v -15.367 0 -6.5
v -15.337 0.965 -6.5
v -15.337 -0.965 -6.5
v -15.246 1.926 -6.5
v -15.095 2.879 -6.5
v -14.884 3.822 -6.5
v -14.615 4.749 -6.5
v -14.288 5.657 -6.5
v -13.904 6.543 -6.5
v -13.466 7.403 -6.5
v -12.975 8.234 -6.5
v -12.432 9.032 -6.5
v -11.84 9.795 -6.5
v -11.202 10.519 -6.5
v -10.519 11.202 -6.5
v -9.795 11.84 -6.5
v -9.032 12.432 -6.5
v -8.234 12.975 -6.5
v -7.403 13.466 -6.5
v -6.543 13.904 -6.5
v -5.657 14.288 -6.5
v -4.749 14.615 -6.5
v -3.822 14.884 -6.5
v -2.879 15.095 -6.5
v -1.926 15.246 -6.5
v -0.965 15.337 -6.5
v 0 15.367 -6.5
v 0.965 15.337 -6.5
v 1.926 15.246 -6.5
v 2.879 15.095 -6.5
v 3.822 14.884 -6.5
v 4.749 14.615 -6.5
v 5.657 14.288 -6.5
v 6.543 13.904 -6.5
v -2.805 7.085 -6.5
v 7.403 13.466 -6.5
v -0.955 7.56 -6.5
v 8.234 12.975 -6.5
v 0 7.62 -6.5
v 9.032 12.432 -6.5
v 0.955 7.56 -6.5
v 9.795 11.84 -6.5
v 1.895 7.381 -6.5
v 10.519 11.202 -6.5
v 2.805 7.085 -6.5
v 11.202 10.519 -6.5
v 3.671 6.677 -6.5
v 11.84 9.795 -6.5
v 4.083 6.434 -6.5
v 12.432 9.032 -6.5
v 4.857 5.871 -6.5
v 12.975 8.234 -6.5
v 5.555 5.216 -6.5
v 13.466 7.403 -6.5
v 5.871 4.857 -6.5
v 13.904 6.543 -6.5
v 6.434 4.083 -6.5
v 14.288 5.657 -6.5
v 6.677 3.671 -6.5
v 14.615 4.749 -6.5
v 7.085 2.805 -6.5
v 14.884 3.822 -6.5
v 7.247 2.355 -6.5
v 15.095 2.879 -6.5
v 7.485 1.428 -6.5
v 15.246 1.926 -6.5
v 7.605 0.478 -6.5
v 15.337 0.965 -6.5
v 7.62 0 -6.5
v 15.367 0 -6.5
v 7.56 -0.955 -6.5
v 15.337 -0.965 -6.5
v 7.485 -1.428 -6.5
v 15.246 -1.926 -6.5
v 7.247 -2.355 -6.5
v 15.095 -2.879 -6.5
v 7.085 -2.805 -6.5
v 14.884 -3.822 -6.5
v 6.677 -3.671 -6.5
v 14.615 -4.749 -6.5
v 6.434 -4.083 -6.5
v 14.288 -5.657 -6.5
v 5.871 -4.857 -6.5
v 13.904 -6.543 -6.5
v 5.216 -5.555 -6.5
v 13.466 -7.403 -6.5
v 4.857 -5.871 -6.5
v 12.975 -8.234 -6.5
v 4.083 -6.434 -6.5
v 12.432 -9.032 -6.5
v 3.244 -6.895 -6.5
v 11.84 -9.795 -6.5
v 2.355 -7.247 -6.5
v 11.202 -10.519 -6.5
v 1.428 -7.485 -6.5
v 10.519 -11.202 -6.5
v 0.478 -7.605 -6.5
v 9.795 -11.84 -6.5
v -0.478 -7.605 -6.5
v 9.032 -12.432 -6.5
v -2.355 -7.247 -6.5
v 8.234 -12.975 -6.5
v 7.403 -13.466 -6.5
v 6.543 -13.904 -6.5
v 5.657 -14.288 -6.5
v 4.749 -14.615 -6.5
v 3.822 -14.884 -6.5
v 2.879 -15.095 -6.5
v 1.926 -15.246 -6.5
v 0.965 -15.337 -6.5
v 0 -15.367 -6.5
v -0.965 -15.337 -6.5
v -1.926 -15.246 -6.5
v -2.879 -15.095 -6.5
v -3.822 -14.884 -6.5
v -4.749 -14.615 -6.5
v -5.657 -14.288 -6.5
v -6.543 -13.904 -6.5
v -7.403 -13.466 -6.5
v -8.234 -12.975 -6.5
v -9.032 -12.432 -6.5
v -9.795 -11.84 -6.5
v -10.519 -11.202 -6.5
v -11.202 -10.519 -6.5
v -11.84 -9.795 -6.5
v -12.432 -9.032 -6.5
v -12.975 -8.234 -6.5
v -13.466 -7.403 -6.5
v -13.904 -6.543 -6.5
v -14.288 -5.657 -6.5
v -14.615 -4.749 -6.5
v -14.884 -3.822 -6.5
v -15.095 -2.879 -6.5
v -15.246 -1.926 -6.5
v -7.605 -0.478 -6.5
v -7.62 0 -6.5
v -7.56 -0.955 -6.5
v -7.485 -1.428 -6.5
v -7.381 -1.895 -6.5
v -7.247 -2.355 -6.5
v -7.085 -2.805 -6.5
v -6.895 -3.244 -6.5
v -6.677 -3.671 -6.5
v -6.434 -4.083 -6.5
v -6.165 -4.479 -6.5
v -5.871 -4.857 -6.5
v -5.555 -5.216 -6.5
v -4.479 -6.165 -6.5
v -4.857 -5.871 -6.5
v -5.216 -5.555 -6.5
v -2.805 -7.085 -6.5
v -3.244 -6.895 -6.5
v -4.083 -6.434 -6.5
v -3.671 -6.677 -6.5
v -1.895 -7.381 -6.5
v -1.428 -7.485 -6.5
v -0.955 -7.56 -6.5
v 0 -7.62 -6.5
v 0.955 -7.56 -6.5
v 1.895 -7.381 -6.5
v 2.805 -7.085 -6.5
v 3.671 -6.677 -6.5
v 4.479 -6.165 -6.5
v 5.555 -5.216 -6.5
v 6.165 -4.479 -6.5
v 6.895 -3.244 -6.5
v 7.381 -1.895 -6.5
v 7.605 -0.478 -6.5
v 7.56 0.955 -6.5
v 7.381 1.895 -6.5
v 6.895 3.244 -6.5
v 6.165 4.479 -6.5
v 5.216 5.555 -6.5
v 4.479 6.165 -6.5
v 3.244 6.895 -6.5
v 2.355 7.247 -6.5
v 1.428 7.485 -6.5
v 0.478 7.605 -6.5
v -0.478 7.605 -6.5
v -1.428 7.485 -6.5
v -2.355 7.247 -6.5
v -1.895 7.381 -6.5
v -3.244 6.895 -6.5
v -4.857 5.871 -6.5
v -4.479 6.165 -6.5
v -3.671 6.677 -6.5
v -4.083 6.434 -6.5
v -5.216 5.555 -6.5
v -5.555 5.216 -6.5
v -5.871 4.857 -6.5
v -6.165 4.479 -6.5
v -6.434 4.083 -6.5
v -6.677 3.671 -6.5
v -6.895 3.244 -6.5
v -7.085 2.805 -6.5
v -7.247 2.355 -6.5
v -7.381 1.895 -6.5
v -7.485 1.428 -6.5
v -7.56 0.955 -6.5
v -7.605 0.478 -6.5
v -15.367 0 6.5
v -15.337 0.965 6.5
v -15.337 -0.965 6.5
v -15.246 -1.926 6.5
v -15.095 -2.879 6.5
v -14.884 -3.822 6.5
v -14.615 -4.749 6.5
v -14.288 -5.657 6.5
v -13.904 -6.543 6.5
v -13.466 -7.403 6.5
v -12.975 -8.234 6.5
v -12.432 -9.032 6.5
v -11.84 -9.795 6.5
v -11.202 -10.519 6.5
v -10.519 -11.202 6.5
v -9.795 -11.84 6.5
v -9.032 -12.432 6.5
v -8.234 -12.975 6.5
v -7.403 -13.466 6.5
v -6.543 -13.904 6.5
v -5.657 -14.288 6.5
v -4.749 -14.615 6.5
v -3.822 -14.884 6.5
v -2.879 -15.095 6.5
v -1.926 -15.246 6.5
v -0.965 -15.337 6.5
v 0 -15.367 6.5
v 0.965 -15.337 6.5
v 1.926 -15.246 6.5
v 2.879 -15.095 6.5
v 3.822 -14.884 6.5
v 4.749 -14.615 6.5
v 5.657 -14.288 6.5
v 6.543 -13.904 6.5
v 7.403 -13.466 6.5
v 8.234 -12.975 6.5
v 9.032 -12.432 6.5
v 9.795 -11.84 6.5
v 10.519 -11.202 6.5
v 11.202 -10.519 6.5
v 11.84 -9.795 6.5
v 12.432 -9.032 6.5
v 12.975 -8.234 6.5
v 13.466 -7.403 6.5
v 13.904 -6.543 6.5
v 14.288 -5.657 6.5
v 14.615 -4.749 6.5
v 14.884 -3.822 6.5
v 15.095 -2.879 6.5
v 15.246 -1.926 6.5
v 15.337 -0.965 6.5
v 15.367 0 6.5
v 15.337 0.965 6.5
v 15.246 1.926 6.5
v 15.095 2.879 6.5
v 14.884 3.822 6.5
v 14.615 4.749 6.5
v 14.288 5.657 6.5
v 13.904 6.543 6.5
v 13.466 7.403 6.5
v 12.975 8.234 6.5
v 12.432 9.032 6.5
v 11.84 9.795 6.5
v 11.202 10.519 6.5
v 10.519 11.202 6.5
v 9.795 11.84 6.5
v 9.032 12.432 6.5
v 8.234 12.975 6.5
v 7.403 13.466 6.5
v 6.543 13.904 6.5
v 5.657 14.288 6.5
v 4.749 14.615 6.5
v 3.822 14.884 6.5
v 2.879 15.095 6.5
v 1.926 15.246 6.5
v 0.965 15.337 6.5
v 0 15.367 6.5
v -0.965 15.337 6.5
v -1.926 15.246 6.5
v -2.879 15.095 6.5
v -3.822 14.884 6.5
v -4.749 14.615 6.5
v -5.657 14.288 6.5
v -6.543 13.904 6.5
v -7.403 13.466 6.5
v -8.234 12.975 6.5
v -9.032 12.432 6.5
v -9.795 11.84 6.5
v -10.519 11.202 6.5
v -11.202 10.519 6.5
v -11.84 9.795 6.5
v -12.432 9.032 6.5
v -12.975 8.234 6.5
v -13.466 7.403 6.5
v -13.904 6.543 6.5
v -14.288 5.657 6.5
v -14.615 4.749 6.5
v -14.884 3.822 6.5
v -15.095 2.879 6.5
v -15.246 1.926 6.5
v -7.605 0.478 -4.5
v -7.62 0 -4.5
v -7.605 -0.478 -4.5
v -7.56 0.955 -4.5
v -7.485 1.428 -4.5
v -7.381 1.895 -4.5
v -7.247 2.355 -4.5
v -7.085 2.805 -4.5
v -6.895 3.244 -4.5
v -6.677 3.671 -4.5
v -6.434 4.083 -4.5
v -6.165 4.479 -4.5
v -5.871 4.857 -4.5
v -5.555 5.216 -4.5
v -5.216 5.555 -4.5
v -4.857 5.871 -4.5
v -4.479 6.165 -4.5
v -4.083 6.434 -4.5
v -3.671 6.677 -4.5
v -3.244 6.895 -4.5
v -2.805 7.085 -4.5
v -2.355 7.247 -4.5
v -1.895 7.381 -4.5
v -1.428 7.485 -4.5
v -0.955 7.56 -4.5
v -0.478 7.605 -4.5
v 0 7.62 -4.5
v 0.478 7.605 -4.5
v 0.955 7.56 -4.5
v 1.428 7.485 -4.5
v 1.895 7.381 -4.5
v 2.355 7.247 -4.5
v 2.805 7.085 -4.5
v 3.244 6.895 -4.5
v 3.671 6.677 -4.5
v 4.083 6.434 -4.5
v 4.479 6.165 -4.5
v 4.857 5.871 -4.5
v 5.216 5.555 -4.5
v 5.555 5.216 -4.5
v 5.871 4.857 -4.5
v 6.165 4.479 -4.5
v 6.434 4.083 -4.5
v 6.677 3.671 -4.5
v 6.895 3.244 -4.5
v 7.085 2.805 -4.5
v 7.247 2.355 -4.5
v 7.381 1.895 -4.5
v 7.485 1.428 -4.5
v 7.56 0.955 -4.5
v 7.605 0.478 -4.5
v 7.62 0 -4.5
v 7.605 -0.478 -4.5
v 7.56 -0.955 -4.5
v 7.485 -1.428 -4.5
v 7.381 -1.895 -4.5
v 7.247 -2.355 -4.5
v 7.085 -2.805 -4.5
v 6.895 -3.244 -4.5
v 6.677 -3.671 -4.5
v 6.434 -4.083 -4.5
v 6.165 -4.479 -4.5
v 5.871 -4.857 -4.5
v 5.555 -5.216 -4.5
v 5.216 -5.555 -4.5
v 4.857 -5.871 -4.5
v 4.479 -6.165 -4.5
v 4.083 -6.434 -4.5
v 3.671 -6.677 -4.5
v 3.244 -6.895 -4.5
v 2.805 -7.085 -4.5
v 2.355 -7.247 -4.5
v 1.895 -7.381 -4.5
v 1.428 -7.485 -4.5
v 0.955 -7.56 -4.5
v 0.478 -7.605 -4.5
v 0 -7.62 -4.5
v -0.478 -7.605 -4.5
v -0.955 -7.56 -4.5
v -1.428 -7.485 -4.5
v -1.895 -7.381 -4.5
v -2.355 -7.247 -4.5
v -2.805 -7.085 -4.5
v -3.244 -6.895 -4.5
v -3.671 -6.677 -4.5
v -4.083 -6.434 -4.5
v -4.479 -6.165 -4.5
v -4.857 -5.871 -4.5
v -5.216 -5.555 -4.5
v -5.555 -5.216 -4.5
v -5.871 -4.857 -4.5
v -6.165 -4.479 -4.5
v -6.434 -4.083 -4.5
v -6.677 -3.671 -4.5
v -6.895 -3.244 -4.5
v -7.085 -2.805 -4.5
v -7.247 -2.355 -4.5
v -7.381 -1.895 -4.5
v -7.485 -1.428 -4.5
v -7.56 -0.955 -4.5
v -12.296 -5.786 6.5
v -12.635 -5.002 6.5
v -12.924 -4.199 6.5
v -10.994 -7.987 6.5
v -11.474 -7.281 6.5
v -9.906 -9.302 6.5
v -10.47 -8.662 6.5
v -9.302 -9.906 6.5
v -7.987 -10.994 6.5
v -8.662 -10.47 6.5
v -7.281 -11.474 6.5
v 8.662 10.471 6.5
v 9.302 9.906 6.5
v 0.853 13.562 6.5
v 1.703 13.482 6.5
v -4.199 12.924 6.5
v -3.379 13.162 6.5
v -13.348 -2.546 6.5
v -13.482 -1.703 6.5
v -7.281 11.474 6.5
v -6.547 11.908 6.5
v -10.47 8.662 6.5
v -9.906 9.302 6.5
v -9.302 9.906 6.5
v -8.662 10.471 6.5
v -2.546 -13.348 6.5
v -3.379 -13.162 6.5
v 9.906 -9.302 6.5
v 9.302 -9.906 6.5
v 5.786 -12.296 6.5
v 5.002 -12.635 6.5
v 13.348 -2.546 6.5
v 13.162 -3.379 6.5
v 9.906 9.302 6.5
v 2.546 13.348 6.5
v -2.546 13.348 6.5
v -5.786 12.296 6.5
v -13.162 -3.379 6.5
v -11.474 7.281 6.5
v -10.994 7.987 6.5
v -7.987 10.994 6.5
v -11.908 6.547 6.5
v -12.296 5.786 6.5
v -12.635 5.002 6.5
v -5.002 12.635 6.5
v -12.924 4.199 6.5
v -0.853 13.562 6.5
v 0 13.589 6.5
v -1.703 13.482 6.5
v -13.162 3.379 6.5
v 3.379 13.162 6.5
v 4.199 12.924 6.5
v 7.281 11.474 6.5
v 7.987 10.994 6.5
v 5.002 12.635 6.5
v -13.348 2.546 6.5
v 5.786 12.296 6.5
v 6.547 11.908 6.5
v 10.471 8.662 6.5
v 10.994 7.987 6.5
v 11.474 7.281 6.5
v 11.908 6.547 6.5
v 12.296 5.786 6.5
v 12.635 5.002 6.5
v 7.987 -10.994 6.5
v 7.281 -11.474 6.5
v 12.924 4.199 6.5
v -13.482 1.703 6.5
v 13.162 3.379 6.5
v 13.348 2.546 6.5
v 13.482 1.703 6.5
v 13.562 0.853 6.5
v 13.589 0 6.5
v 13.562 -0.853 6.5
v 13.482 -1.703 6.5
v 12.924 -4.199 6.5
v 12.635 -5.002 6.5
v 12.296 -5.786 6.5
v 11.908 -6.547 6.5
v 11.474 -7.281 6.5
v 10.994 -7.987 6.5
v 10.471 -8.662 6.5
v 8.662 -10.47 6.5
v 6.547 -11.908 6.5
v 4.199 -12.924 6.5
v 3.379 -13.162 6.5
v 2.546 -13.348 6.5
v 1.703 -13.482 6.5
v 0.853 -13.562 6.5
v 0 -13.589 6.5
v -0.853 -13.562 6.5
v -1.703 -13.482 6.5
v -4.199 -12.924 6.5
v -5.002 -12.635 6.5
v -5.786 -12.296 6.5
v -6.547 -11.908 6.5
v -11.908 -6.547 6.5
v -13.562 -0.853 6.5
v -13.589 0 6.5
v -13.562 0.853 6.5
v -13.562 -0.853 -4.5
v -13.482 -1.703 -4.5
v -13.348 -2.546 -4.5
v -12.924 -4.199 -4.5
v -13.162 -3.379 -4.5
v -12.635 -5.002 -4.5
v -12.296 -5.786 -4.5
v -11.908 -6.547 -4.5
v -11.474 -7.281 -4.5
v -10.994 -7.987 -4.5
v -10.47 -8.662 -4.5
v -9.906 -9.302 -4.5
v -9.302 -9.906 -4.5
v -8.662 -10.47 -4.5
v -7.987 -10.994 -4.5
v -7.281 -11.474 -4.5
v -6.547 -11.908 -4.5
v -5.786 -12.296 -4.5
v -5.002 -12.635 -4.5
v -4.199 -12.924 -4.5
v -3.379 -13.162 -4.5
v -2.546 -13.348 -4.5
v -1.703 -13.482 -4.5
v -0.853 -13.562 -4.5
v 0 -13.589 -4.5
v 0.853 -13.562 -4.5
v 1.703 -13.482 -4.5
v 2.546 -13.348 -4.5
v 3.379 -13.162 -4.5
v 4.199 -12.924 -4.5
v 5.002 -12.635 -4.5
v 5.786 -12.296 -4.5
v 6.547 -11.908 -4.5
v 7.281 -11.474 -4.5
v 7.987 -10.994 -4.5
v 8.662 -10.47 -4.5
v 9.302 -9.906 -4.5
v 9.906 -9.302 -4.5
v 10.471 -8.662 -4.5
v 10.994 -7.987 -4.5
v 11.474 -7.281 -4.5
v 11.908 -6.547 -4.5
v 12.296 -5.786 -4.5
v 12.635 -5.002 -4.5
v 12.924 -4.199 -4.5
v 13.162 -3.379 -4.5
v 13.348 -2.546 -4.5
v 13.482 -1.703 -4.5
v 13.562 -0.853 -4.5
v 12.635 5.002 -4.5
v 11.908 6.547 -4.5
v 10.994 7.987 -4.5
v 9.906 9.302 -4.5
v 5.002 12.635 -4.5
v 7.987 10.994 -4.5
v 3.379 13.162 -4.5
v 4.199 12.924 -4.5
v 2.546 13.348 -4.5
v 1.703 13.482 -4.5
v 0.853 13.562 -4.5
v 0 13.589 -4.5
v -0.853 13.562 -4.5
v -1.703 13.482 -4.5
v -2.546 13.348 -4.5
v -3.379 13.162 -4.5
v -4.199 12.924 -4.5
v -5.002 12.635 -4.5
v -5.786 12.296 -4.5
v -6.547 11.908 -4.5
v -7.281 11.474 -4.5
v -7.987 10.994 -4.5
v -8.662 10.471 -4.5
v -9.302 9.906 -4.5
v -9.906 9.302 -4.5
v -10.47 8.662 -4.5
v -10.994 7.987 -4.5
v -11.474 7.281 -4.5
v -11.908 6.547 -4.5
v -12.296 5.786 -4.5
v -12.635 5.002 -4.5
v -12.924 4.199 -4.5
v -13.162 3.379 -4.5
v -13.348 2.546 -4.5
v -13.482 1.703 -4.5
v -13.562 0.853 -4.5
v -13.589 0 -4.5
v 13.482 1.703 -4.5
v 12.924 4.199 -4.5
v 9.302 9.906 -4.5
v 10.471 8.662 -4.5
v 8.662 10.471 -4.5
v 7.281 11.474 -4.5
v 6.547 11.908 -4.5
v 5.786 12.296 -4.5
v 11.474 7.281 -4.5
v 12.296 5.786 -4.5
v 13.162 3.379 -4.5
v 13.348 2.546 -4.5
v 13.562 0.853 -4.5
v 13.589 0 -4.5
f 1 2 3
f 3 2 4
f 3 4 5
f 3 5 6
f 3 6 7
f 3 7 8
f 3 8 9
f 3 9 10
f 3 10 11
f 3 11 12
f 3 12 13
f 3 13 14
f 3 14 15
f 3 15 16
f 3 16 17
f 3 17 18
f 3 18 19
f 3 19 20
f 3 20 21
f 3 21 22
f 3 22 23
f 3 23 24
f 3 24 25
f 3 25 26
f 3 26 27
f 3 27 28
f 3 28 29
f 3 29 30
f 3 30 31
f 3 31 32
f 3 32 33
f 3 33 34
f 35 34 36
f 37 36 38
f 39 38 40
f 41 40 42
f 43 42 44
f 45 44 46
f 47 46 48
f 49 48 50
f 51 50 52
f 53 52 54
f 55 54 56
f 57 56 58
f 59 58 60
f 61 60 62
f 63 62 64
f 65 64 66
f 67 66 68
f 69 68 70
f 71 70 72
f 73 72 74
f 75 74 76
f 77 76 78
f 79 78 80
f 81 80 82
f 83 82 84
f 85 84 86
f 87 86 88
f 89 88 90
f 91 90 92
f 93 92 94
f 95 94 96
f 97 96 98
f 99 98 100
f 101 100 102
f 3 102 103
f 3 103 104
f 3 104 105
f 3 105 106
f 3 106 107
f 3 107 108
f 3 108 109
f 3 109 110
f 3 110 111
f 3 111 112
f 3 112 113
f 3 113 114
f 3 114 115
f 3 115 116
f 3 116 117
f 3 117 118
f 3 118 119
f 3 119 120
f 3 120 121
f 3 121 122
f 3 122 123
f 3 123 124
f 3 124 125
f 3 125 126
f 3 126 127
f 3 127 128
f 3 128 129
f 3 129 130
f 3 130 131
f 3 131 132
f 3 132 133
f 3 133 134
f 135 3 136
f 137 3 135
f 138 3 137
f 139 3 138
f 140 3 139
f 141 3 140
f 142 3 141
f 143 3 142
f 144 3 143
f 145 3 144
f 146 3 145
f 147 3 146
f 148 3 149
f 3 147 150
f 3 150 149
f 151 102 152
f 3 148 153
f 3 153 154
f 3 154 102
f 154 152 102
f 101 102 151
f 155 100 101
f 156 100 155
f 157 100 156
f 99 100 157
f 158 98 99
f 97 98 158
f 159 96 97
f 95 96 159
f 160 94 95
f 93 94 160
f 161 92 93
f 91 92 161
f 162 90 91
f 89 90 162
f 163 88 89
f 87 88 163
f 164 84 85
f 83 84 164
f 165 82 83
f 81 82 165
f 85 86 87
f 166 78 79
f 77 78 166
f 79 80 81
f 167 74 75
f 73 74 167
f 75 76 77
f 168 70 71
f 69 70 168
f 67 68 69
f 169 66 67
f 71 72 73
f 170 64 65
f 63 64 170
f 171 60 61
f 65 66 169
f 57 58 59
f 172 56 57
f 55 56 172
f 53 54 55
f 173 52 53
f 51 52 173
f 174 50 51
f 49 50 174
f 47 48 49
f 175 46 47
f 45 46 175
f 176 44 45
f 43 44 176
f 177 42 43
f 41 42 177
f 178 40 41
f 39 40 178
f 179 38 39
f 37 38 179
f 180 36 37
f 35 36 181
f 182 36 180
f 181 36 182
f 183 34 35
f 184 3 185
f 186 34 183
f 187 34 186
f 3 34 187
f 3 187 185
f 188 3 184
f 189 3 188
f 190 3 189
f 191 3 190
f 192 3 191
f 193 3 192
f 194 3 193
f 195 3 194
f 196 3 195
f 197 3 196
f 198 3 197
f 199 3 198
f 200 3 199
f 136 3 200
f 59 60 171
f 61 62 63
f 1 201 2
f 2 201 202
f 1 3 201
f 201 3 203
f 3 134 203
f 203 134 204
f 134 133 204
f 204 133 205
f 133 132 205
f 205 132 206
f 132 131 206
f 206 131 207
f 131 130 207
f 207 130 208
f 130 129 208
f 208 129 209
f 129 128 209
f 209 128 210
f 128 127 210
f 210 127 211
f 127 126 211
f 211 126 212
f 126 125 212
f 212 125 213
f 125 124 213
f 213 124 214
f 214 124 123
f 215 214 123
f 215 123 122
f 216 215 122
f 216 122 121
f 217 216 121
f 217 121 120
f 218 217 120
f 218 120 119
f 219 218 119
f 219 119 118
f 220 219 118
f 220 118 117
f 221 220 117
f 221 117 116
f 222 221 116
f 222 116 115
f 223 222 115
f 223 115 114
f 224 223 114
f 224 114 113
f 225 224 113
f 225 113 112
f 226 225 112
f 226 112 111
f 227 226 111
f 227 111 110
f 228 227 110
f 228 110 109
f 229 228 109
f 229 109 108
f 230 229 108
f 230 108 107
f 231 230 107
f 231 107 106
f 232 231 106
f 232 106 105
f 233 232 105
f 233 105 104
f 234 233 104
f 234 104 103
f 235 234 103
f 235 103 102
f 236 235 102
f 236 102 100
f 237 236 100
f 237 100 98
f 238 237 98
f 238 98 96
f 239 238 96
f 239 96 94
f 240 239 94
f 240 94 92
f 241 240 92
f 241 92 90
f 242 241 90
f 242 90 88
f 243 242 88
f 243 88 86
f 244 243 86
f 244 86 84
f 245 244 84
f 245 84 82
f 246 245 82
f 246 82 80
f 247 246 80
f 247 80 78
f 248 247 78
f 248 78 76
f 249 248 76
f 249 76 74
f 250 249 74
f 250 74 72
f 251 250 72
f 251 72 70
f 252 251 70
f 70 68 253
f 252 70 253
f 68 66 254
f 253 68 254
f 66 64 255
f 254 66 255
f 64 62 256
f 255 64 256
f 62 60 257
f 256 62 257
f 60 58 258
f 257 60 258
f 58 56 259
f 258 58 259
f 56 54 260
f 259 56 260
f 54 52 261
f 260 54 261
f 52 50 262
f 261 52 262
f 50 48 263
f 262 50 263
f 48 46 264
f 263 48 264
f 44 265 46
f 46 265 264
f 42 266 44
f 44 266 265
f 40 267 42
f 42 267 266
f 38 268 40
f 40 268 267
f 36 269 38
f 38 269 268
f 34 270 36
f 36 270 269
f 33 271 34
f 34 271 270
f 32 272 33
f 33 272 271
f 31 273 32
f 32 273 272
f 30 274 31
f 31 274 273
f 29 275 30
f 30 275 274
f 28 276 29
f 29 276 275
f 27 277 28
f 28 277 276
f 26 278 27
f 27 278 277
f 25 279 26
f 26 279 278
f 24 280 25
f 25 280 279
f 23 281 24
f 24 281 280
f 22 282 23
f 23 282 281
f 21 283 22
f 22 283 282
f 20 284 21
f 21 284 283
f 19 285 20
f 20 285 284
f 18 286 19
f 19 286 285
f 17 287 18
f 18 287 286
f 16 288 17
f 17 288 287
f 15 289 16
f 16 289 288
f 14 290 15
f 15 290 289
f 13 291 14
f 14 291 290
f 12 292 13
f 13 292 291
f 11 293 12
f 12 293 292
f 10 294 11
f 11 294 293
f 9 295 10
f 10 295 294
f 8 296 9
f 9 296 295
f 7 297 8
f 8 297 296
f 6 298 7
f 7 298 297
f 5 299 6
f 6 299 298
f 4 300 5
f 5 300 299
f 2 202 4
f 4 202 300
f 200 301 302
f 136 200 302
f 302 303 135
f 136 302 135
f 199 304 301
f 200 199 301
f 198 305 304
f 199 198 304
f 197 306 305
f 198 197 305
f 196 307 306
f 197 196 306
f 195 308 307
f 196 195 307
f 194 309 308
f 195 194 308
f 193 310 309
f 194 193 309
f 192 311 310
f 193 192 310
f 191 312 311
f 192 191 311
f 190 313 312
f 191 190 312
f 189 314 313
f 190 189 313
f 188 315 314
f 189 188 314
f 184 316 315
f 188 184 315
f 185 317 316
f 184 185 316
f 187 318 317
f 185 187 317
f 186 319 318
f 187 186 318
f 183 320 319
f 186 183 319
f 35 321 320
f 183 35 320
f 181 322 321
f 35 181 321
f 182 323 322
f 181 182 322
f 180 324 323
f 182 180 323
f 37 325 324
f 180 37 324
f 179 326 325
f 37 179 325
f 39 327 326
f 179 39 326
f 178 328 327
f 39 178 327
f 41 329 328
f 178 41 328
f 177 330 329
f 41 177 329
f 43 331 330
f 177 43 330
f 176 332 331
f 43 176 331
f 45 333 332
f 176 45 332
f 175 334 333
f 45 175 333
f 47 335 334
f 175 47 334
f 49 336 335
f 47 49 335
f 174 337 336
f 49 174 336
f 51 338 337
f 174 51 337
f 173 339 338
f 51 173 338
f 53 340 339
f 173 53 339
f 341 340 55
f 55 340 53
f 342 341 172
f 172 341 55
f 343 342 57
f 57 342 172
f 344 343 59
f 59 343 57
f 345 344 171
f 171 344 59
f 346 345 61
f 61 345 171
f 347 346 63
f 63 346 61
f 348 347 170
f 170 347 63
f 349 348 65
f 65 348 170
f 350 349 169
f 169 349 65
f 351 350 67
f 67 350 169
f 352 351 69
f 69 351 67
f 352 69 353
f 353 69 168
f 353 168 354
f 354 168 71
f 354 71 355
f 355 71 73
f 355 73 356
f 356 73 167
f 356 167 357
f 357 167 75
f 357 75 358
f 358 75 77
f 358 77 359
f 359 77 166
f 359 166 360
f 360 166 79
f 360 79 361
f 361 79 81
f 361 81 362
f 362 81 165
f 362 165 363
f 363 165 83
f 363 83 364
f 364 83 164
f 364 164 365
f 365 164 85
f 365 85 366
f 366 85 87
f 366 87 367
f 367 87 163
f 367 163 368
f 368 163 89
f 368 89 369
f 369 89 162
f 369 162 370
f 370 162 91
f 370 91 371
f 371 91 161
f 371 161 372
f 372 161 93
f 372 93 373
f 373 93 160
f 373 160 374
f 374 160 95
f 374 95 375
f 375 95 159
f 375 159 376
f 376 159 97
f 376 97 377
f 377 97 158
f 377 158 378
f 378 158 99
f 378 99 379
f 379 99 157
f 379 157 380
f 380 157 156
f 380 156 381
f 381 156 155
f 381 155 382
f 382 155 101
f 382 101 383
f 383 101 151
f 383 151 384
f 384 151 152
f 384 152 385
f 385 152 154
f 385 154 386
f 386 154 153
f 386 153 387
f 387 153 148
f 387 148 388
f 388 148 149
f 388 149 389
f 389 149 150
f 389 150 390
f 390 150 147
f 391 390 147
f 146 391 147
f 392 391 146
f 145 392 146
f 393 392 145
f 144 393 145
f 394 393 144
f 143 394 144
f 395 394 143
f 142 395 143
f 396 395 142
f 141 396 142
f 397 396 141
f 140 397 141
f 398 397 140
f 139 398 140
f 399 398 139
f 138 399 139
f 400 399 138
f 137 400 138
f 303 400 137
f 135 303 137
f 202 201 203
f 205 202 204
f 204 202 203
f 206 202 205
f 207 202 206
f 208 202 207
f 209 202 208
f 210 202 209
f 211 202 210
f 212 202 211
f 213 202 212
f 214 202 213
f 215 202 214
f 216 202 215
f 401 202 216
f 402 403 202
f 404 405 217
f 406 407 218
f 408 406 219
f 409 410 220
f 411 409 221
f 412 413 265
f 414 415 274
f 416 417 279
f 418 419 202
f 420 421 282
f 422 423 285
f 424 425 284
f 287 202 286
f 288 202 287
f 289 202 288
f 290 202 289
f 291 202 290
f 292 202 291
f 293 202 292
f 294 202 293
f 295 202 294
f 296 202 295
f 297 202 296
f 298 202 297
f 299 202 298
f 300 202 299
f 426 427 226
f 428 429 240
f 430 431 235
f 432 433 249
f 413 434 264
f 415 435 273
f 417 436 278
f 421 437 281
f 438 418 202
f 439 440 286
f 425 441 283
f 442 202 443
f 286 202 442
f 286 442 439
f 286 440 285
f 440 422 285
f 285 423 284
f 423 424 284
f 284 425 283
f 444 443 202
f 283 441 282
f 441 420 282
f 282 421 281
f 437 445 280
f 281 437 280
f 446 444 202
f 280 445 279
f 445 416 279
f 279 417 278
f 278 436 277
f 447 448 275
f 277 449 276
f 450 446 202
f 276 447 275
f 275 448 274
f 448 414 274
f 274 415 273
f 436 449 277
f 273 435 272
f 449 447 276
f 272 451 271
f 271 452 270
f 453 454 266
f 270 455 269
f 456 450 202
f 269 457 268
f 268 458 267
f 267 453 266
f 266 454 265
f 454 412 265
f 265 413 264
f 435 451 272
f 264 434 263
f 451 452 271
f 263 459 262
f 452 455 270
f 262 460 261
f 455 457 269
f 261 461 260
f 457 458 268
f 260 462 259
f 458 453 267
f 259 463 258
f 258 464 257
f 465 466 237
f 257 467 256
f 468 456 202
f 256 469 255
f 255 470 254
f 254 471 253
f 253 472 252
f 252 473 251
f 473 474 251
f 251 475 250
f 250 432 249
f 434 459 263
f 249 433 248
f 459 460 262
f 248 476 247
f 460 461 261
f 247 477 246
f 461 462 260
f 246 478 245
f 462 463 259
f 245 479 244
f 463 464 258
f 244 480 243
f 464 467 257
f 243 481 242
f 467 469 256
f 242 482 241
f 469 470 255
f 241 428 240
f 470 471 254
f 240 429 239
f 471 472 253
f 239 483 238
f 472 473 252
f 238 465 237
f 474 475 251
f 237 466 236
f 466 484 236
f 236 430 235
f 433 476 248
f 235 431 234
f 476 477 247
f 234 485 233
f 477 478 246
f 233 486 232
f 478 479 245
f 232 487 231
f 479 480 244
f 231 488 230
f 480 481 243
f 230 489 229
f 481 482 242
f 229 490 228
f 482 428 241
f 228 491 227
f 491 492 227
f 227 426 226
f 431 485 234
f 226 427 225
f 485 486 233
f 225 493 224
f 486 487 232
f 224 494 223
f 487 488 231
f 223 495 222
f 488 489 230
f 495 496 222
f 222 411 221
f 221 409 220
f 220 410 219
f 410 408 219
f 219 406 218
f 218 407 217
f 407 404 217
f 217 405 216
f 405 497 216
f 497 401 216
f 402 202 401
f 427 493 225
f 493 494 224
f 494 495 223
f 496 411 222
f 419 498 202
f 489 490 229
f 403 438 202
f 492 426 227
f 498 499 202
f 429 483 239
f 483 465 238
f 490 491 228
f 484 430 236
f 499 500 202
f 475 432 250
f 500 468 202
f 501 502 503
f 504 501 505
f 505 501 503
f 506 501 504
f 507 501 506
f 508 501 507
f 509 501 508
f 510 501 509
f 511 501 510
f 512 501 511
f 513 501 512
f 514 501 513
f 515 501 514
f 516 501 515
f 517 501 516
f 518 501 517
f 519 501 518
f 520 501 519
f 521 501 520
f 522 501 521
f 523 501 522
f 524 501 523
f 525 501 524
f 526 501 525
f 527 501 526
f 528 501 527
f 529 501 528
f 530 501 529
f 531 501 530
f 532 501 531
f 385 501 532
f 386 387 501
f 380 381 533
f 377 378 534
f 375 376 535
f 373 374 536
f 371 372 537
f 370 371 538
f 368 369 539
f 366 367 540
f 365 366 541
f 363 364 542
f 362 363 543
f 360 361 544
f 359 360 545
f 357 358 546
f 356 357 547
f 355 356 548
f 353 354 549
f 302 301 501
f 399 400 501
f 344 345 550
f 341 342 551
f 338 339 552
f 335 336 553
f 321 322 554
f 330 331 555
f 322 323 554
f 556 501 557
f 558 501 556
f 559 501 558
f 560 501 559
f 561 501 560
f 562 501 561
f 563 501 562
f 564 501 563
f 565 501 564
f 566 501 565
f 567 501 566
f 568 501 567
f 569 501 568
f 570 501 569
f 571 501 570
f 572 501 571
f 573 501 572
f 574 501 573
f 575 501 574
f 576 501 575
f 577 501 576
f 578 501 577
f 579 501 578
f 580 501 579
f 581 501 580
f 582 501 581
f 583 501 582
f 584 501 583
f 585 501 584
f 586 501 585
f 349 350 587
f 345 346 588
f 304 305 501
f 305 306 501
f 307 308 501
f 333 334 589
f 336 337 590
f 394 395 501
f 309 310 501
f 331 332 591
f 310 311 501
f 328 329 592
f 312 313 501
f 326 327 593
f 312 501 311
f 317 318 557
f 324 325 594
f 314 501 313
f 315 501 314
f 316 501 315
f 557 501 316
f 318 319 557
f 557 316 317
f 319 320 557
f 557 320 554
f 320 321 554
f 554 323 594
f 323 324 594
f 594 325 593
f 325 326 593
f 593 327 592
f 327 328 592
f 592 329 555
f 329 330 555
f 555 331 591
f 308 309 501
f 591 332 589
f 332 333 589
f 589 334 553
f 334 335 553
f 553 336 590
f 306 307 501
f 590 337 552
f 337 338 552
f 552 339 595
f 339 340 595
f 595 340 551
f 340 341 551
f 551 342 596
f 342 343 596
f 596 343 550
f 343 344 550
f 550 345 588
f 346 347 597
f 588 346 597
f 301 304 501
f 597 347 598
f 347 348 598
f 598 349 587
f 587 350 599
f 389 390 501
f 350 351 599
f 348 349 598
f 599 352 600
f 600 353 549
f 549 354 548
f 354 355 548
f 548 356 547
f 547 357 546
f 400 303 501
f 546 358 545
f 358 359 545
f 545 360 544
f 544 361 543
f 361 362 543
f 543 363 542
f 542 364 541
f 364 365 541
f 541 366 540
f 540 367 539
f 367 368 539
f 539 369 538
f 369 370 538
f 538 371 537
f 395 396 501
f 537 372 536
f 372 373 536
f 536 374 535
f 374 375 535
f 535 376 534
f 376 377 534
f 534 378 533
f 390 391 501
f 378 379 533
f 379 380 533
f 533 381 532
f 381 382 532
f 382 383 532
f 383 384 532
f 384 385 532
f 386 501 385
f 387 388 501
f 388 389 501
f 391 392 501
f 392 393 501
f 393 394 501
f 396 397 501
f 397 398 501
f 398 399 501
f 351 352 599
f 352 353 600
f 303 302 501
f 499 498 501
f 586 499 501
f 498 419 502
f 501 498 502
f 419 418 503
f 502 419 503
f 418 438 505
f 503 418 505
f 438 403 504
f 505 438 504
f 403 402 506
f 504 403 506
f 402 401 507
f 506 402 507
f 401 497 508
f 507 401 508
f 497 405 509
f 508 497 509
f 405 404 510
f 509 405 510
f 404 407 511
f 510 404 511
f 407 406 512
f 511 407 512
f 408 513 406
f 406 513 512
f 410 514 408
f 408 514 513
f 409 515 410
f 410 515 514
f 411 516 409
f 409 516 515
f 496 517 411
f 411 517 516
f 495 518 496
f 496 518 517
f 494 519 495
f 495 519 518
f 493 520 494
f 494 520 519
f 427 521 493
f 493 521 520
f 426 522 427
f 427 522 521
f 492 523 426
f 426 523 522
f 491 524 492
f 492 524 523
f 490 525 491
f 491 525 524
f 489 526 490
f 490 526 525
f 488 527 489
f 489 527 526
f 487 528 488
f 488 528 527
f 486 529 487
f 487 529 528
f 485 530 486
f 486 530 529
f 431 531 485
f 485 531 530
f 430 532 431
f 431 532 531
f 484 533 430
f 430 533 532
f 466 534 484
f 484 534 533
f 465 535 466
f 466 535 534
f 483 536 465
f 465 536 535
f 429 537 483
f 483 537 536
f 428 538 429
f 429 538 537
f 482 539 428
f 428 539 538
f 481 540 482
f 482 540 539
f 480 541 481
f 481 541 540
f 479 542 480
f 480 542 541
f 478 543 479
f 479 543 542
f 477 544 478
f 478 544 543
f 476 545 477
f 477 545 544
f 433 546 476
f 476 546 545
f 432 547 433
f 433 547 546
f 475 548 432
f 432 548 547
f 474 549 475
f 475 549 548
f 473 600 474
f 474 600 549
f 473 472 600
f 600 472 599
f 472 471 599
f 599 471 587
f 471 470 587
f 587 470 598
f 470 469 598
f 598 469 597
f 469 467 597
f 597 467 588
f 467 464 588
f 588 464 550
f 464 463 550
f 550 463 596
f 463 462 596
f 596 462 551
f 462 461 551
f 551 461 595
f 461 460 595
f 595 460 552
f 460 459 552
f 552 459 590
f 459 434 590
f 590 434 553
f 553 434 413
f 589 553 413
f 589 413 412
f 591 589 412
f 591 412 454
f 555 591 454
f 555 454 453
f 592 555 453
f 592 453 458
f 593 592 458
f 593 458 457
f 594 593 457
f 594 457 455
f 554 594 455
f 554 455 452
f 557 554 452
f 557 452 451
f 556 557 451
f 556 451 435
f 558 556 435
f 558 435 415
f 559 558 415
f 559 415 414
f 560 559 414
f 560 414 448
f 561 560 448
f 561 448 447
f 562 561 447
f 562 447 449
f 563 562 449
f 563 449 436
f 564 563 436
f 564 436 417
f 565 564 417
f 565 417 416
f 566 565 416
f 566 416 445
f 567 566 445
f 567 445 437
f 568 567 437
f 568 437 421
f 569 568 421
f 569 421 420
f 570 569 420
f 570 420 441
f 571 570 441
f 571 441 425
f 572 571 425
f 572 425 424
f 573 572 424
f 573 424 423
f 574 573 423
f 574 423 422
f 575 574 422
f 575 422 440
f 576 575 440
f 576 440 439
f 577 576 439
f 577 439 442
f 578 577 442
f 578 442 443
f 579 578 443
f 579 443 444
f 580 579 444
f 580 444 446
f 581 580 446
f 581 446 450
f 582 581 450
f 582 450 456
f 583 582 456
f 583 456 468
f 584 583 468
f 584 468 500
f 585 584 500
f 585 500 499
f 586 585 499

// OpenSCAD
id = 27.178;
od = 30.734;

ecd = 15.24;

difference() {
	cylinder(r=od/2, h=13, center=true, $fn=100);

	translate([0, 0, 2]) {
		cylinder(r=id/2, h=13, center=true, $fn=100);	
	}	

	translate([0, 0, -2]) {
		cylinder(r=ecd/2, h=13, center=true, $fn=100);	
	}	

}
